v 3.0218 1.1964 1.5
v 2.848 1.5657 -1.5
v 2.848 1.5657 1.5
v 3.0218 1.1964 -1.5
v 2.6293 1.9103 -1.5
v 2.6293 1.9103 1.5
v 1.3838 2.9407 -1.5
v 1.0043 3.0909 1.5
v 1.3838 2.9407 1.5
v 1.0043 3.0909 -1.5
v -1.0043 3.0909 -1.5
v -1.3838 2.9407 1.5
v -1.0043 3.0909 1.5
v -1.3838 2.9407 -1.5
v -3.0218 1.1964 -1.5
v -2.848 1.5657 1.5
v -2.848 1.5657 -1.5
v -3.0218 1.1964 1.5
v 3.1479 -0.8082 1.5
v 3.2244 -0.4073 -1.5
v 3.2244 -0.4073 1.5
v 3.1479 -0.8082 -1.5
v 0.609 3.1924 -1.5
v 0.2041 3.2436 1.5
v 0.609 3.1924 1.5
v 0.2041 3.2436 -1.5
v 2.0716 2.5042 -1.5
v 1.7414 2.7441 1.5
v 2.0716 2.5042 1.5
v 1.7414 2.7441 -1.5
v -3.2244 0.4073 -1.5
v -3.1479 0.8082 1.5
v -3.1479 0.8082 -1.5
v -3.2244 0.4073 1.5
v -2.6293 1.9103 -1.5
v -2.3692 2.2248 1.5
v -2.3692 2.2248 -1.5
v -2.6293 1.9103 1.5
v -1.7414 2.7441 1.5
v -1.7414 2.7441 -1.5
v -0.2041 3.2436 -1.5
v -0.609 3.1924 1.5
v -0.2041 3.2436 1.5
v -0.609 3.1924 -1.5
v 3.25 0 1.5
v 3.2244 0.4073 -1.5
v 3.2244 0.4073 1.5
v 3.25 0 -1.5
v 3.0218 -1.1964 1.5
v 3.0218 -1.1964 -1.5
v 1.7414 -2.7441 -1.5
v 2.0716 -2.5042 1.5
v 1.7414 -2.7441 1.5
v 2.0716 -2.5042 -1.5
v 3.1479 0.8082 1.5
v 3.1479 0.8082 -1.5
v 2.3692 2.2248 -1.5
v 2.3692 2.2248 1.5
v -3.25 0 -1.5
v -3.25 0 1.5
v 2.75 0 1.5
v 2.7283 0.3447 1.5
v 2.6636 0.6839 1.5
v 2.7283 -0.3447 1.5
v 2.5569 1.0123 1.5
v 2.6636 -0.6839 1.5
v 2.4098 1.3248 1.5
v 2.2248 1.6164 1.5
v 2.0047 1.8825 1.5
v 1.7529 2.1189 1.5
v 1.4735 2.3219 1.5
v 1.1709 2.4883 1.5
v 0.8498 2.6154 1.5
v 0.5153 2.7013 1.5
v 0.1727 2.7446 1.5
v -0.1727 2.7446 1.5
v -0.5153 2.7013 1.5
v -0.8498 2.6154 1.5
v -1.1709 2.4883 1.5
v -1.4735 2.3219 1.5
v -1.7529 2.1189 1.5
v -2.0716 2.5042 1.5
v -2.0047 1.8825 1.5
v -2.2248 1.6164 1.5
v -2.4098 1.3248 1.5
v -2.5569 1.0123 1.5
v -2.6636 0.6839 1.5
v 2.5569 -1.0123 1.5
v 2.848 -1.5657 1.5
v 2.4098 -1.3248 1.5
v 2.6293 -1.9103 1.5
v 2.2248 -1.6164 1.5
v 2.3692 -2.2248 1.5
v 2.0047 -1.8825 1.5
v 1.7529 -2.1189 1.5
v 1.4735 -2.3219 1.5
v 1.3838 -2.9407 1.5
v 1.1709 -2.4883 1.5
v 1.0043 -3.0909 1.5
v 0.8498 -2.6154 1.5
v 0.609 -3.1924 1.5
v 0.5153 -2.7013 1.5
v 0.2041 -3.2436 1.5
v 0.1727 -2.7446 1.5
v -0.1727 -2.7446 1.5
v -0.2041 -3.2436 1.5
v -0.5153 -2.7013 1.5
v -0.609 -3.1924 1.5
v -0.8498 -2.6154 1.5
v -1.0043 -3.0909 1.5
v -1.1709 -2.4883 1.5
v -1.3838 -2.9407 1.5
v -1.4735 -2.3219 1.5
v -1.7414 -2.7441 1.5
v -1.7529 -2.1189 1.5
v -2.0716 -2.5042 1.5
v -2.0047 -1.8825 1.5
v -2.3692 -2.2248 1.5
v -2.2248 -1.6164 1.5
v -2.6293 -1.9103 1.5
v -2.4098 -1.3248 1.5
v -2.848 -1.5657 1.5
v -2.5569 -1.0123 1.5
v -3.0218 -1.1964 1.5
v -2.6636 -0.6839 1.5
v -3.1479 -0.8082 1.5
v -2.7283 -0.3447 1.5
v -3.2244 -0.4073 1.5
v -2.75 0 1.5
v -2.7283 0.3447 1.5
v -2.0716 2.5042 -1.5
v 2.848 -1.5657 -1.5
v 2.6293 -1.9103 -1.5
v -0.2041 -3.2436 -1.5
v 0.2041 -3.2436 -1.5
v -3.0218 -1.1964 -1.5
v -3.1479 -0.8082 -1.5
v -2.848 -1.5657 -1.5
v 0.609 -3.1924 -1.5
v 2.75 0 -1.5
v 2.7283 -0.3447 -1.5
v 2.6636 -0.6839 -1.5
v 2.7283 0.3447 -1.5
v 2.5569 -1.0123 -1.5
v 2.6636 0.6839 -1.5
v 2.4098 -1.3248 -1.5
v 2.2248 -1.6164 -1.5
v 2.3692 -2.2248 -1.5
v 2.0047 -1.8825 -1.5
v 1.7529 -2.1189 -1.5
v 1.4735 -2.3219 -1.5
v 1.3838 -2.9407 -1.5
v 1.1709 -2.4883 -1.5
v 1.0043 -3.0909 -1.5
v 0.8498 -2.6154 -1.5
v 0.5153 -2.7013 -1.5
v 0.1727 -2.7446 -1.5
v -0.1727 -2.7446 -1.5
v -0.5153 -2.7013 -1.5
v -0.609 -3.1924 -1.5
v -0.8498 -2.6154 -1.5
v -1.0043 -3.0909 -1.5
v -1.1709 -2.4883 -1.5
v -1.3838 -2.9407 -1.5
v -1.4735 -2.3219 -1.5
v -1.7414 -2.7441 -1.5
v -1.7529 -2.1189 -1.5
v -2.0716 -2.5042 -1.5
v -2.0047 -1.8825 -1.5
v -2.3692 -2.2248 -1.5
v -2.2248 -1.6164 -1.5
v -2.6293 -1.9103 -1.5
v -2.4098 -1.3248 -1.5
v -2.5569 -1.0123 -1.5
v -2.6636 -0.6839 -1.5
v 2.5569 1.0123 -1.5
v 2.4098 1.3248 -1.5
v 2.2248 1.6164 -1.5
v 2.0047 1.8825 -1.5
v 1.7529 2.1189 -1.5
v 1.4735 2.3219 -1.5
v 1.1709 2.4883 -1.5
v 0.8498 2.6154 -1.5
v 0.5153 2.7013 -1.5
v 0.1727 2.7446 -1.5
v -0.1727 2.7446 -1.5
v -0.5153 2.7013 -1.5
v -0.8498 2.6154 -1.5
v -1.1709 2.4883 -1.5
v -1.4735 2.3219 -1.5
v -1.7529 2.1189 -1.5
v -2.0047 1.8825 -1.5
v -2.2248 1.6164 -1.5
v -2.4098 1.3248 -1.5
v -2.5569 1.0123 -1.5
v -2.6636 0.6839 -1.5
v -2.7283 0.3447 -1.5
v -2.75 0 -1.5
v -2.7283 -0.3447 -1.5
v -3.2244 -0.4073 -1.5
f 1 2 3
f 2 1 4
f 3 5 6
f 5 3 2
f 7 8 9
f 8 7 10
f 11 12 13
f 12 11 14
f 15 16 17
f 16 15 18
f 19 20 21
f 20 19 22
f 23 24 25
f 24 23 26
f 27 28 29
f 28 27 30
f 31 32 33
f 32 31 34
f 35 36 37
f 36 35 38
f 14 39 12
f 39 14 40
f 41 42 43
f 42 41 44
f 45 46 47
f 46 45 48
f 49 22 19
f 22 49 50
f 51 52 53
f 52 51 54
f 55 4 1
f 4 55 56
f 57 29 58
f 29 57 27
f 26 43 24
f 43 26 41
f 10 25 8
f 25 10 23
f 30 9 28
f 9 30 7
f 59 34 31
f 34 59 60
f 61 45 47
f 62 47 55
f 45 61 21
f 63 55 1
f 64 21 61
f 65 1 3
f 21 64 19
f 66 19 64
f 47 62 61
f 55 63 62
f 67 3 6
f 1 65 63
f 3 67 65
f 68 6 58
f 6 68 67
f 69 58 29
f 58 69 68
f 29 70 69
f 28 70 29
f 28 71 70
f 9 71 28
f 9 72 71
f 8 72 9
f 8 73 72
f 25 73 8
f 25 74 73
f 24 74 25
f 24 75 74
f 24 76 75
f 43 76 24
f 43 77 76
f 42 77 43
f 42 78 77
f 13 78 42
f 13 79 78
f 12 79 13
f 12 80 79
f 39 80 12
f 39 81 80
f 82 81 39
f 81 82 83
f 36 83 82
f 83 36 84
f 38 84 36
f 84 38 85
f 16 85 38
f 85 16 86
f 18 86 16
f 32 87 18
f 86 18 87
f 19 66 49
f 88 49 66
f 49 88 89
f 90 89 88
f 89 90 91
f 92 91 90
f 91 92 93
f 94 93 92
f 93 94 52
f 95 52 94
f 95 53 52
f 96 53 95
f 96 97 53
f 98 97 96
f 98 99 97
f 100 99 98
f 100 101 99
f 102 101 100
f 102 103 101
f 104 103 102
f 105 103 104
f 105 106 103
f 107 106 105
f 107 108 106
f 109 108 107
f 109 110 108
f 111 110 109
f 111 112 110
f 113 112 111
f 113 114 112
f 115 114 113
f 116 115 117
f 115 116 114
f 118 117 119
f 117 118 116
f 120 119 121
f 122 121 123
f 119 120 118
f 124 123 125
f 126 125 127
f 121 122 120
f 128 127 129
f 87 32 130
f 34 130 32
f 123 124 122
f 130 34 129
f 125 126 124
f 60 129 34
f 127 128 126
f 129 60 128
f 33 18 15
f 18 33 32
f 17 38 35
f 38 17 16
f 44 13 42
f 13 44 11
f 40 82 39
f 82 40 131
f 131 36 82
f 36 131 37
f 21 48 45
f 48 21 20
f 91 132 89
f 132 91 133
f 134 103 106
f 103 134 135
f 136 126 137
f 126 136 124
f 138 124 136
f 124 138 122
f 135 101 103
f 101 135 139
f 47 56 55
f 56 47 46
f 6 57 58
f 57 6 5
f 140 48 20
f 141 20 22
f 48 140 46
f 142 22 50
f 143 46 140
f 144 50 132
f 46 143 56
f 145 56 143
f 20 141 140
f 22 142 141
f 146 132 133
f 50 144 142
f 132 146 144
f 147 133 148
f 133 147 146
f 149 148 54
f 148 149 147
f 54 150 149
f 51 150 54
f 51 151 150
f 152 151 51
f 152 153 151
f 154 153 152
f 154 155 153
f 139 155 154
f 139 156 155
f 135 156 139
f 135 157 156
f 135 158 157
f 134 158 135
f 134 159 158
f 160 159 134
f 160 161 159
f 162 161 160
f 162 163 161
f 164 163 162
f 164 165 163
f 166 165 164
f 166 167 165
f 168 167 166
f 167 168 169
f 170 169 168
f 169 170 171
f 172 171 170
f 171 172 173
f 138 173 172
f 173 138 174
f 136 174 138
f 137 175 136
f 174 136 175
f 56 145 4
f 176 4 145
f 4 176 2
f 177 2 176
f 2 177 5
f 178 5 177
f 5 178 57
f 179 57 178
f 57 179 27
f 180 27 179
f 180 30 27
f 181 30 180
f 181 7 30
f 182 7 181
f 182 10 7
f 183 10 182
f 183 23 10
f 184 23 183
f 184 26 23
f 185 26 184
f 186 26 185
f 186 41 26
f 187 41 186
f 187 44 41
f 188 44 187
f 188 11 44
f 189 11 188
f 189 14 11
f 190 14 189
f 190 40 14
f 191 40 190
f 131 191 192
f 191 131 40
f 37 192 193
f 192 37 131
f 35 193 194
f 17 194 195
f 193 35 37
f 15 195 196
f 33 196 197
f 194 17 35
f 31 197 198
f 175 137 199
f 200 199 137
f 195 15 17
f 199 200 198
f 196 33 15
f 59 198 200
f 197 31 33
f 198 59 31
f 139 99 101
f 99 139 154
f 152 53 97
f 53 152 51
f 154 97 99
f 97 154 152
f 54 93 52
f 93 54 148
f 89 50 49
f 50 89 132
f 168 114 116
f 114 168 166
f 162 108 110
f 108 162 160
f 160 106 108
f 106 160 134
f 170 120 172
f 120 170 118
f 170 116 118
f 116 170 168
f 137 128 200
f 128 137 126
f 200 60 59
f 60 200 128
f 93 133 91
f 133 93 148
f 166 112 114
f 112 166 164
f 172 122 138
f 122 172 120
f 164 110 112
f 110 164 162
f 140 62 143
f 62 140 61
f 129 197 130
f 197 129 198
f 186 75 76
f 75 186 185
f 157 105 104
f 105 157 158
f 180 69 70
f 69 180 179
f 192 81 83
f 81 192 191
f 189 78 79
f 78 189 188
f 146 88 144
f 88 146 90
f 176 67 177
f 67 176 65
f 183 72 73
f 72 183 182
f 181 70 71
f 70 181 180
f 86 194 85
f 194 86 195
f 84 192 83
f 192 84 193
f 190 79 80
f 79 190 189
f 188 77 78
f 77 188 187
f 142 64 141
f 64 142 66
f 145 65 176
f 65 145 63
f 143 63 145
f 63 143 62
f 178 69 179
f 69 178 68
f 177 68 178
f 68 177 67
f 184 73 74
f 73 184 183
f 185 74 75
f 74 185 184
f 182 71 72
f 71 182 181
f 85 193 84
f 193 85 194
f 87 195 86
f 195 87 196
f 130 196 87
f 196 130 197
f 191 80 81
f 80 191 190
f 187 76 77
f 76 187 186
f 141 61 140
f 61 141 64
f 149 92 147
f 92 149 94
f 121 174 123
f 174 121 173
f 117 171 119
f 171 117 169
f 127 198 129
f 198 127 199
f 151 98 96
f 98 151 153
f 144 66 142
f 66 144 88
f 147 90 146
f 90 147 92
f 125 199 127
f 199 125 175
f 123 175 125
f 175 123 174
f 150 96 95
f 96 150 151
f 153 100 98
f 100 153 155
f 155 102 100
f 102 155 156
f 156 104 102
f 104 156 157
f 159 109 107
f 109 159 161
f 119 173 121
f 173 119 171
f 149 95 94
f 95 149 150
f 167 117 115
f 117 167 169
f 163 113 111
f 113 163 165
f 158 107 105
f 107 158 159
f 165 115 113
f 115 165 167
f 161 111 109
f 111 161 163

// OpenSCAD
$fn = 50;


difference() {
	union() {
		translate(v = [0, 0, -1.5000000000]) {
			cylinder(h = 3, r = 3.2500000000);
		}
	}
	union() {
		translate(v = [0, 0, -100.0000000000]) {
			cylinder(h = 200, r = 2.7500000000);
		}
	}
}
